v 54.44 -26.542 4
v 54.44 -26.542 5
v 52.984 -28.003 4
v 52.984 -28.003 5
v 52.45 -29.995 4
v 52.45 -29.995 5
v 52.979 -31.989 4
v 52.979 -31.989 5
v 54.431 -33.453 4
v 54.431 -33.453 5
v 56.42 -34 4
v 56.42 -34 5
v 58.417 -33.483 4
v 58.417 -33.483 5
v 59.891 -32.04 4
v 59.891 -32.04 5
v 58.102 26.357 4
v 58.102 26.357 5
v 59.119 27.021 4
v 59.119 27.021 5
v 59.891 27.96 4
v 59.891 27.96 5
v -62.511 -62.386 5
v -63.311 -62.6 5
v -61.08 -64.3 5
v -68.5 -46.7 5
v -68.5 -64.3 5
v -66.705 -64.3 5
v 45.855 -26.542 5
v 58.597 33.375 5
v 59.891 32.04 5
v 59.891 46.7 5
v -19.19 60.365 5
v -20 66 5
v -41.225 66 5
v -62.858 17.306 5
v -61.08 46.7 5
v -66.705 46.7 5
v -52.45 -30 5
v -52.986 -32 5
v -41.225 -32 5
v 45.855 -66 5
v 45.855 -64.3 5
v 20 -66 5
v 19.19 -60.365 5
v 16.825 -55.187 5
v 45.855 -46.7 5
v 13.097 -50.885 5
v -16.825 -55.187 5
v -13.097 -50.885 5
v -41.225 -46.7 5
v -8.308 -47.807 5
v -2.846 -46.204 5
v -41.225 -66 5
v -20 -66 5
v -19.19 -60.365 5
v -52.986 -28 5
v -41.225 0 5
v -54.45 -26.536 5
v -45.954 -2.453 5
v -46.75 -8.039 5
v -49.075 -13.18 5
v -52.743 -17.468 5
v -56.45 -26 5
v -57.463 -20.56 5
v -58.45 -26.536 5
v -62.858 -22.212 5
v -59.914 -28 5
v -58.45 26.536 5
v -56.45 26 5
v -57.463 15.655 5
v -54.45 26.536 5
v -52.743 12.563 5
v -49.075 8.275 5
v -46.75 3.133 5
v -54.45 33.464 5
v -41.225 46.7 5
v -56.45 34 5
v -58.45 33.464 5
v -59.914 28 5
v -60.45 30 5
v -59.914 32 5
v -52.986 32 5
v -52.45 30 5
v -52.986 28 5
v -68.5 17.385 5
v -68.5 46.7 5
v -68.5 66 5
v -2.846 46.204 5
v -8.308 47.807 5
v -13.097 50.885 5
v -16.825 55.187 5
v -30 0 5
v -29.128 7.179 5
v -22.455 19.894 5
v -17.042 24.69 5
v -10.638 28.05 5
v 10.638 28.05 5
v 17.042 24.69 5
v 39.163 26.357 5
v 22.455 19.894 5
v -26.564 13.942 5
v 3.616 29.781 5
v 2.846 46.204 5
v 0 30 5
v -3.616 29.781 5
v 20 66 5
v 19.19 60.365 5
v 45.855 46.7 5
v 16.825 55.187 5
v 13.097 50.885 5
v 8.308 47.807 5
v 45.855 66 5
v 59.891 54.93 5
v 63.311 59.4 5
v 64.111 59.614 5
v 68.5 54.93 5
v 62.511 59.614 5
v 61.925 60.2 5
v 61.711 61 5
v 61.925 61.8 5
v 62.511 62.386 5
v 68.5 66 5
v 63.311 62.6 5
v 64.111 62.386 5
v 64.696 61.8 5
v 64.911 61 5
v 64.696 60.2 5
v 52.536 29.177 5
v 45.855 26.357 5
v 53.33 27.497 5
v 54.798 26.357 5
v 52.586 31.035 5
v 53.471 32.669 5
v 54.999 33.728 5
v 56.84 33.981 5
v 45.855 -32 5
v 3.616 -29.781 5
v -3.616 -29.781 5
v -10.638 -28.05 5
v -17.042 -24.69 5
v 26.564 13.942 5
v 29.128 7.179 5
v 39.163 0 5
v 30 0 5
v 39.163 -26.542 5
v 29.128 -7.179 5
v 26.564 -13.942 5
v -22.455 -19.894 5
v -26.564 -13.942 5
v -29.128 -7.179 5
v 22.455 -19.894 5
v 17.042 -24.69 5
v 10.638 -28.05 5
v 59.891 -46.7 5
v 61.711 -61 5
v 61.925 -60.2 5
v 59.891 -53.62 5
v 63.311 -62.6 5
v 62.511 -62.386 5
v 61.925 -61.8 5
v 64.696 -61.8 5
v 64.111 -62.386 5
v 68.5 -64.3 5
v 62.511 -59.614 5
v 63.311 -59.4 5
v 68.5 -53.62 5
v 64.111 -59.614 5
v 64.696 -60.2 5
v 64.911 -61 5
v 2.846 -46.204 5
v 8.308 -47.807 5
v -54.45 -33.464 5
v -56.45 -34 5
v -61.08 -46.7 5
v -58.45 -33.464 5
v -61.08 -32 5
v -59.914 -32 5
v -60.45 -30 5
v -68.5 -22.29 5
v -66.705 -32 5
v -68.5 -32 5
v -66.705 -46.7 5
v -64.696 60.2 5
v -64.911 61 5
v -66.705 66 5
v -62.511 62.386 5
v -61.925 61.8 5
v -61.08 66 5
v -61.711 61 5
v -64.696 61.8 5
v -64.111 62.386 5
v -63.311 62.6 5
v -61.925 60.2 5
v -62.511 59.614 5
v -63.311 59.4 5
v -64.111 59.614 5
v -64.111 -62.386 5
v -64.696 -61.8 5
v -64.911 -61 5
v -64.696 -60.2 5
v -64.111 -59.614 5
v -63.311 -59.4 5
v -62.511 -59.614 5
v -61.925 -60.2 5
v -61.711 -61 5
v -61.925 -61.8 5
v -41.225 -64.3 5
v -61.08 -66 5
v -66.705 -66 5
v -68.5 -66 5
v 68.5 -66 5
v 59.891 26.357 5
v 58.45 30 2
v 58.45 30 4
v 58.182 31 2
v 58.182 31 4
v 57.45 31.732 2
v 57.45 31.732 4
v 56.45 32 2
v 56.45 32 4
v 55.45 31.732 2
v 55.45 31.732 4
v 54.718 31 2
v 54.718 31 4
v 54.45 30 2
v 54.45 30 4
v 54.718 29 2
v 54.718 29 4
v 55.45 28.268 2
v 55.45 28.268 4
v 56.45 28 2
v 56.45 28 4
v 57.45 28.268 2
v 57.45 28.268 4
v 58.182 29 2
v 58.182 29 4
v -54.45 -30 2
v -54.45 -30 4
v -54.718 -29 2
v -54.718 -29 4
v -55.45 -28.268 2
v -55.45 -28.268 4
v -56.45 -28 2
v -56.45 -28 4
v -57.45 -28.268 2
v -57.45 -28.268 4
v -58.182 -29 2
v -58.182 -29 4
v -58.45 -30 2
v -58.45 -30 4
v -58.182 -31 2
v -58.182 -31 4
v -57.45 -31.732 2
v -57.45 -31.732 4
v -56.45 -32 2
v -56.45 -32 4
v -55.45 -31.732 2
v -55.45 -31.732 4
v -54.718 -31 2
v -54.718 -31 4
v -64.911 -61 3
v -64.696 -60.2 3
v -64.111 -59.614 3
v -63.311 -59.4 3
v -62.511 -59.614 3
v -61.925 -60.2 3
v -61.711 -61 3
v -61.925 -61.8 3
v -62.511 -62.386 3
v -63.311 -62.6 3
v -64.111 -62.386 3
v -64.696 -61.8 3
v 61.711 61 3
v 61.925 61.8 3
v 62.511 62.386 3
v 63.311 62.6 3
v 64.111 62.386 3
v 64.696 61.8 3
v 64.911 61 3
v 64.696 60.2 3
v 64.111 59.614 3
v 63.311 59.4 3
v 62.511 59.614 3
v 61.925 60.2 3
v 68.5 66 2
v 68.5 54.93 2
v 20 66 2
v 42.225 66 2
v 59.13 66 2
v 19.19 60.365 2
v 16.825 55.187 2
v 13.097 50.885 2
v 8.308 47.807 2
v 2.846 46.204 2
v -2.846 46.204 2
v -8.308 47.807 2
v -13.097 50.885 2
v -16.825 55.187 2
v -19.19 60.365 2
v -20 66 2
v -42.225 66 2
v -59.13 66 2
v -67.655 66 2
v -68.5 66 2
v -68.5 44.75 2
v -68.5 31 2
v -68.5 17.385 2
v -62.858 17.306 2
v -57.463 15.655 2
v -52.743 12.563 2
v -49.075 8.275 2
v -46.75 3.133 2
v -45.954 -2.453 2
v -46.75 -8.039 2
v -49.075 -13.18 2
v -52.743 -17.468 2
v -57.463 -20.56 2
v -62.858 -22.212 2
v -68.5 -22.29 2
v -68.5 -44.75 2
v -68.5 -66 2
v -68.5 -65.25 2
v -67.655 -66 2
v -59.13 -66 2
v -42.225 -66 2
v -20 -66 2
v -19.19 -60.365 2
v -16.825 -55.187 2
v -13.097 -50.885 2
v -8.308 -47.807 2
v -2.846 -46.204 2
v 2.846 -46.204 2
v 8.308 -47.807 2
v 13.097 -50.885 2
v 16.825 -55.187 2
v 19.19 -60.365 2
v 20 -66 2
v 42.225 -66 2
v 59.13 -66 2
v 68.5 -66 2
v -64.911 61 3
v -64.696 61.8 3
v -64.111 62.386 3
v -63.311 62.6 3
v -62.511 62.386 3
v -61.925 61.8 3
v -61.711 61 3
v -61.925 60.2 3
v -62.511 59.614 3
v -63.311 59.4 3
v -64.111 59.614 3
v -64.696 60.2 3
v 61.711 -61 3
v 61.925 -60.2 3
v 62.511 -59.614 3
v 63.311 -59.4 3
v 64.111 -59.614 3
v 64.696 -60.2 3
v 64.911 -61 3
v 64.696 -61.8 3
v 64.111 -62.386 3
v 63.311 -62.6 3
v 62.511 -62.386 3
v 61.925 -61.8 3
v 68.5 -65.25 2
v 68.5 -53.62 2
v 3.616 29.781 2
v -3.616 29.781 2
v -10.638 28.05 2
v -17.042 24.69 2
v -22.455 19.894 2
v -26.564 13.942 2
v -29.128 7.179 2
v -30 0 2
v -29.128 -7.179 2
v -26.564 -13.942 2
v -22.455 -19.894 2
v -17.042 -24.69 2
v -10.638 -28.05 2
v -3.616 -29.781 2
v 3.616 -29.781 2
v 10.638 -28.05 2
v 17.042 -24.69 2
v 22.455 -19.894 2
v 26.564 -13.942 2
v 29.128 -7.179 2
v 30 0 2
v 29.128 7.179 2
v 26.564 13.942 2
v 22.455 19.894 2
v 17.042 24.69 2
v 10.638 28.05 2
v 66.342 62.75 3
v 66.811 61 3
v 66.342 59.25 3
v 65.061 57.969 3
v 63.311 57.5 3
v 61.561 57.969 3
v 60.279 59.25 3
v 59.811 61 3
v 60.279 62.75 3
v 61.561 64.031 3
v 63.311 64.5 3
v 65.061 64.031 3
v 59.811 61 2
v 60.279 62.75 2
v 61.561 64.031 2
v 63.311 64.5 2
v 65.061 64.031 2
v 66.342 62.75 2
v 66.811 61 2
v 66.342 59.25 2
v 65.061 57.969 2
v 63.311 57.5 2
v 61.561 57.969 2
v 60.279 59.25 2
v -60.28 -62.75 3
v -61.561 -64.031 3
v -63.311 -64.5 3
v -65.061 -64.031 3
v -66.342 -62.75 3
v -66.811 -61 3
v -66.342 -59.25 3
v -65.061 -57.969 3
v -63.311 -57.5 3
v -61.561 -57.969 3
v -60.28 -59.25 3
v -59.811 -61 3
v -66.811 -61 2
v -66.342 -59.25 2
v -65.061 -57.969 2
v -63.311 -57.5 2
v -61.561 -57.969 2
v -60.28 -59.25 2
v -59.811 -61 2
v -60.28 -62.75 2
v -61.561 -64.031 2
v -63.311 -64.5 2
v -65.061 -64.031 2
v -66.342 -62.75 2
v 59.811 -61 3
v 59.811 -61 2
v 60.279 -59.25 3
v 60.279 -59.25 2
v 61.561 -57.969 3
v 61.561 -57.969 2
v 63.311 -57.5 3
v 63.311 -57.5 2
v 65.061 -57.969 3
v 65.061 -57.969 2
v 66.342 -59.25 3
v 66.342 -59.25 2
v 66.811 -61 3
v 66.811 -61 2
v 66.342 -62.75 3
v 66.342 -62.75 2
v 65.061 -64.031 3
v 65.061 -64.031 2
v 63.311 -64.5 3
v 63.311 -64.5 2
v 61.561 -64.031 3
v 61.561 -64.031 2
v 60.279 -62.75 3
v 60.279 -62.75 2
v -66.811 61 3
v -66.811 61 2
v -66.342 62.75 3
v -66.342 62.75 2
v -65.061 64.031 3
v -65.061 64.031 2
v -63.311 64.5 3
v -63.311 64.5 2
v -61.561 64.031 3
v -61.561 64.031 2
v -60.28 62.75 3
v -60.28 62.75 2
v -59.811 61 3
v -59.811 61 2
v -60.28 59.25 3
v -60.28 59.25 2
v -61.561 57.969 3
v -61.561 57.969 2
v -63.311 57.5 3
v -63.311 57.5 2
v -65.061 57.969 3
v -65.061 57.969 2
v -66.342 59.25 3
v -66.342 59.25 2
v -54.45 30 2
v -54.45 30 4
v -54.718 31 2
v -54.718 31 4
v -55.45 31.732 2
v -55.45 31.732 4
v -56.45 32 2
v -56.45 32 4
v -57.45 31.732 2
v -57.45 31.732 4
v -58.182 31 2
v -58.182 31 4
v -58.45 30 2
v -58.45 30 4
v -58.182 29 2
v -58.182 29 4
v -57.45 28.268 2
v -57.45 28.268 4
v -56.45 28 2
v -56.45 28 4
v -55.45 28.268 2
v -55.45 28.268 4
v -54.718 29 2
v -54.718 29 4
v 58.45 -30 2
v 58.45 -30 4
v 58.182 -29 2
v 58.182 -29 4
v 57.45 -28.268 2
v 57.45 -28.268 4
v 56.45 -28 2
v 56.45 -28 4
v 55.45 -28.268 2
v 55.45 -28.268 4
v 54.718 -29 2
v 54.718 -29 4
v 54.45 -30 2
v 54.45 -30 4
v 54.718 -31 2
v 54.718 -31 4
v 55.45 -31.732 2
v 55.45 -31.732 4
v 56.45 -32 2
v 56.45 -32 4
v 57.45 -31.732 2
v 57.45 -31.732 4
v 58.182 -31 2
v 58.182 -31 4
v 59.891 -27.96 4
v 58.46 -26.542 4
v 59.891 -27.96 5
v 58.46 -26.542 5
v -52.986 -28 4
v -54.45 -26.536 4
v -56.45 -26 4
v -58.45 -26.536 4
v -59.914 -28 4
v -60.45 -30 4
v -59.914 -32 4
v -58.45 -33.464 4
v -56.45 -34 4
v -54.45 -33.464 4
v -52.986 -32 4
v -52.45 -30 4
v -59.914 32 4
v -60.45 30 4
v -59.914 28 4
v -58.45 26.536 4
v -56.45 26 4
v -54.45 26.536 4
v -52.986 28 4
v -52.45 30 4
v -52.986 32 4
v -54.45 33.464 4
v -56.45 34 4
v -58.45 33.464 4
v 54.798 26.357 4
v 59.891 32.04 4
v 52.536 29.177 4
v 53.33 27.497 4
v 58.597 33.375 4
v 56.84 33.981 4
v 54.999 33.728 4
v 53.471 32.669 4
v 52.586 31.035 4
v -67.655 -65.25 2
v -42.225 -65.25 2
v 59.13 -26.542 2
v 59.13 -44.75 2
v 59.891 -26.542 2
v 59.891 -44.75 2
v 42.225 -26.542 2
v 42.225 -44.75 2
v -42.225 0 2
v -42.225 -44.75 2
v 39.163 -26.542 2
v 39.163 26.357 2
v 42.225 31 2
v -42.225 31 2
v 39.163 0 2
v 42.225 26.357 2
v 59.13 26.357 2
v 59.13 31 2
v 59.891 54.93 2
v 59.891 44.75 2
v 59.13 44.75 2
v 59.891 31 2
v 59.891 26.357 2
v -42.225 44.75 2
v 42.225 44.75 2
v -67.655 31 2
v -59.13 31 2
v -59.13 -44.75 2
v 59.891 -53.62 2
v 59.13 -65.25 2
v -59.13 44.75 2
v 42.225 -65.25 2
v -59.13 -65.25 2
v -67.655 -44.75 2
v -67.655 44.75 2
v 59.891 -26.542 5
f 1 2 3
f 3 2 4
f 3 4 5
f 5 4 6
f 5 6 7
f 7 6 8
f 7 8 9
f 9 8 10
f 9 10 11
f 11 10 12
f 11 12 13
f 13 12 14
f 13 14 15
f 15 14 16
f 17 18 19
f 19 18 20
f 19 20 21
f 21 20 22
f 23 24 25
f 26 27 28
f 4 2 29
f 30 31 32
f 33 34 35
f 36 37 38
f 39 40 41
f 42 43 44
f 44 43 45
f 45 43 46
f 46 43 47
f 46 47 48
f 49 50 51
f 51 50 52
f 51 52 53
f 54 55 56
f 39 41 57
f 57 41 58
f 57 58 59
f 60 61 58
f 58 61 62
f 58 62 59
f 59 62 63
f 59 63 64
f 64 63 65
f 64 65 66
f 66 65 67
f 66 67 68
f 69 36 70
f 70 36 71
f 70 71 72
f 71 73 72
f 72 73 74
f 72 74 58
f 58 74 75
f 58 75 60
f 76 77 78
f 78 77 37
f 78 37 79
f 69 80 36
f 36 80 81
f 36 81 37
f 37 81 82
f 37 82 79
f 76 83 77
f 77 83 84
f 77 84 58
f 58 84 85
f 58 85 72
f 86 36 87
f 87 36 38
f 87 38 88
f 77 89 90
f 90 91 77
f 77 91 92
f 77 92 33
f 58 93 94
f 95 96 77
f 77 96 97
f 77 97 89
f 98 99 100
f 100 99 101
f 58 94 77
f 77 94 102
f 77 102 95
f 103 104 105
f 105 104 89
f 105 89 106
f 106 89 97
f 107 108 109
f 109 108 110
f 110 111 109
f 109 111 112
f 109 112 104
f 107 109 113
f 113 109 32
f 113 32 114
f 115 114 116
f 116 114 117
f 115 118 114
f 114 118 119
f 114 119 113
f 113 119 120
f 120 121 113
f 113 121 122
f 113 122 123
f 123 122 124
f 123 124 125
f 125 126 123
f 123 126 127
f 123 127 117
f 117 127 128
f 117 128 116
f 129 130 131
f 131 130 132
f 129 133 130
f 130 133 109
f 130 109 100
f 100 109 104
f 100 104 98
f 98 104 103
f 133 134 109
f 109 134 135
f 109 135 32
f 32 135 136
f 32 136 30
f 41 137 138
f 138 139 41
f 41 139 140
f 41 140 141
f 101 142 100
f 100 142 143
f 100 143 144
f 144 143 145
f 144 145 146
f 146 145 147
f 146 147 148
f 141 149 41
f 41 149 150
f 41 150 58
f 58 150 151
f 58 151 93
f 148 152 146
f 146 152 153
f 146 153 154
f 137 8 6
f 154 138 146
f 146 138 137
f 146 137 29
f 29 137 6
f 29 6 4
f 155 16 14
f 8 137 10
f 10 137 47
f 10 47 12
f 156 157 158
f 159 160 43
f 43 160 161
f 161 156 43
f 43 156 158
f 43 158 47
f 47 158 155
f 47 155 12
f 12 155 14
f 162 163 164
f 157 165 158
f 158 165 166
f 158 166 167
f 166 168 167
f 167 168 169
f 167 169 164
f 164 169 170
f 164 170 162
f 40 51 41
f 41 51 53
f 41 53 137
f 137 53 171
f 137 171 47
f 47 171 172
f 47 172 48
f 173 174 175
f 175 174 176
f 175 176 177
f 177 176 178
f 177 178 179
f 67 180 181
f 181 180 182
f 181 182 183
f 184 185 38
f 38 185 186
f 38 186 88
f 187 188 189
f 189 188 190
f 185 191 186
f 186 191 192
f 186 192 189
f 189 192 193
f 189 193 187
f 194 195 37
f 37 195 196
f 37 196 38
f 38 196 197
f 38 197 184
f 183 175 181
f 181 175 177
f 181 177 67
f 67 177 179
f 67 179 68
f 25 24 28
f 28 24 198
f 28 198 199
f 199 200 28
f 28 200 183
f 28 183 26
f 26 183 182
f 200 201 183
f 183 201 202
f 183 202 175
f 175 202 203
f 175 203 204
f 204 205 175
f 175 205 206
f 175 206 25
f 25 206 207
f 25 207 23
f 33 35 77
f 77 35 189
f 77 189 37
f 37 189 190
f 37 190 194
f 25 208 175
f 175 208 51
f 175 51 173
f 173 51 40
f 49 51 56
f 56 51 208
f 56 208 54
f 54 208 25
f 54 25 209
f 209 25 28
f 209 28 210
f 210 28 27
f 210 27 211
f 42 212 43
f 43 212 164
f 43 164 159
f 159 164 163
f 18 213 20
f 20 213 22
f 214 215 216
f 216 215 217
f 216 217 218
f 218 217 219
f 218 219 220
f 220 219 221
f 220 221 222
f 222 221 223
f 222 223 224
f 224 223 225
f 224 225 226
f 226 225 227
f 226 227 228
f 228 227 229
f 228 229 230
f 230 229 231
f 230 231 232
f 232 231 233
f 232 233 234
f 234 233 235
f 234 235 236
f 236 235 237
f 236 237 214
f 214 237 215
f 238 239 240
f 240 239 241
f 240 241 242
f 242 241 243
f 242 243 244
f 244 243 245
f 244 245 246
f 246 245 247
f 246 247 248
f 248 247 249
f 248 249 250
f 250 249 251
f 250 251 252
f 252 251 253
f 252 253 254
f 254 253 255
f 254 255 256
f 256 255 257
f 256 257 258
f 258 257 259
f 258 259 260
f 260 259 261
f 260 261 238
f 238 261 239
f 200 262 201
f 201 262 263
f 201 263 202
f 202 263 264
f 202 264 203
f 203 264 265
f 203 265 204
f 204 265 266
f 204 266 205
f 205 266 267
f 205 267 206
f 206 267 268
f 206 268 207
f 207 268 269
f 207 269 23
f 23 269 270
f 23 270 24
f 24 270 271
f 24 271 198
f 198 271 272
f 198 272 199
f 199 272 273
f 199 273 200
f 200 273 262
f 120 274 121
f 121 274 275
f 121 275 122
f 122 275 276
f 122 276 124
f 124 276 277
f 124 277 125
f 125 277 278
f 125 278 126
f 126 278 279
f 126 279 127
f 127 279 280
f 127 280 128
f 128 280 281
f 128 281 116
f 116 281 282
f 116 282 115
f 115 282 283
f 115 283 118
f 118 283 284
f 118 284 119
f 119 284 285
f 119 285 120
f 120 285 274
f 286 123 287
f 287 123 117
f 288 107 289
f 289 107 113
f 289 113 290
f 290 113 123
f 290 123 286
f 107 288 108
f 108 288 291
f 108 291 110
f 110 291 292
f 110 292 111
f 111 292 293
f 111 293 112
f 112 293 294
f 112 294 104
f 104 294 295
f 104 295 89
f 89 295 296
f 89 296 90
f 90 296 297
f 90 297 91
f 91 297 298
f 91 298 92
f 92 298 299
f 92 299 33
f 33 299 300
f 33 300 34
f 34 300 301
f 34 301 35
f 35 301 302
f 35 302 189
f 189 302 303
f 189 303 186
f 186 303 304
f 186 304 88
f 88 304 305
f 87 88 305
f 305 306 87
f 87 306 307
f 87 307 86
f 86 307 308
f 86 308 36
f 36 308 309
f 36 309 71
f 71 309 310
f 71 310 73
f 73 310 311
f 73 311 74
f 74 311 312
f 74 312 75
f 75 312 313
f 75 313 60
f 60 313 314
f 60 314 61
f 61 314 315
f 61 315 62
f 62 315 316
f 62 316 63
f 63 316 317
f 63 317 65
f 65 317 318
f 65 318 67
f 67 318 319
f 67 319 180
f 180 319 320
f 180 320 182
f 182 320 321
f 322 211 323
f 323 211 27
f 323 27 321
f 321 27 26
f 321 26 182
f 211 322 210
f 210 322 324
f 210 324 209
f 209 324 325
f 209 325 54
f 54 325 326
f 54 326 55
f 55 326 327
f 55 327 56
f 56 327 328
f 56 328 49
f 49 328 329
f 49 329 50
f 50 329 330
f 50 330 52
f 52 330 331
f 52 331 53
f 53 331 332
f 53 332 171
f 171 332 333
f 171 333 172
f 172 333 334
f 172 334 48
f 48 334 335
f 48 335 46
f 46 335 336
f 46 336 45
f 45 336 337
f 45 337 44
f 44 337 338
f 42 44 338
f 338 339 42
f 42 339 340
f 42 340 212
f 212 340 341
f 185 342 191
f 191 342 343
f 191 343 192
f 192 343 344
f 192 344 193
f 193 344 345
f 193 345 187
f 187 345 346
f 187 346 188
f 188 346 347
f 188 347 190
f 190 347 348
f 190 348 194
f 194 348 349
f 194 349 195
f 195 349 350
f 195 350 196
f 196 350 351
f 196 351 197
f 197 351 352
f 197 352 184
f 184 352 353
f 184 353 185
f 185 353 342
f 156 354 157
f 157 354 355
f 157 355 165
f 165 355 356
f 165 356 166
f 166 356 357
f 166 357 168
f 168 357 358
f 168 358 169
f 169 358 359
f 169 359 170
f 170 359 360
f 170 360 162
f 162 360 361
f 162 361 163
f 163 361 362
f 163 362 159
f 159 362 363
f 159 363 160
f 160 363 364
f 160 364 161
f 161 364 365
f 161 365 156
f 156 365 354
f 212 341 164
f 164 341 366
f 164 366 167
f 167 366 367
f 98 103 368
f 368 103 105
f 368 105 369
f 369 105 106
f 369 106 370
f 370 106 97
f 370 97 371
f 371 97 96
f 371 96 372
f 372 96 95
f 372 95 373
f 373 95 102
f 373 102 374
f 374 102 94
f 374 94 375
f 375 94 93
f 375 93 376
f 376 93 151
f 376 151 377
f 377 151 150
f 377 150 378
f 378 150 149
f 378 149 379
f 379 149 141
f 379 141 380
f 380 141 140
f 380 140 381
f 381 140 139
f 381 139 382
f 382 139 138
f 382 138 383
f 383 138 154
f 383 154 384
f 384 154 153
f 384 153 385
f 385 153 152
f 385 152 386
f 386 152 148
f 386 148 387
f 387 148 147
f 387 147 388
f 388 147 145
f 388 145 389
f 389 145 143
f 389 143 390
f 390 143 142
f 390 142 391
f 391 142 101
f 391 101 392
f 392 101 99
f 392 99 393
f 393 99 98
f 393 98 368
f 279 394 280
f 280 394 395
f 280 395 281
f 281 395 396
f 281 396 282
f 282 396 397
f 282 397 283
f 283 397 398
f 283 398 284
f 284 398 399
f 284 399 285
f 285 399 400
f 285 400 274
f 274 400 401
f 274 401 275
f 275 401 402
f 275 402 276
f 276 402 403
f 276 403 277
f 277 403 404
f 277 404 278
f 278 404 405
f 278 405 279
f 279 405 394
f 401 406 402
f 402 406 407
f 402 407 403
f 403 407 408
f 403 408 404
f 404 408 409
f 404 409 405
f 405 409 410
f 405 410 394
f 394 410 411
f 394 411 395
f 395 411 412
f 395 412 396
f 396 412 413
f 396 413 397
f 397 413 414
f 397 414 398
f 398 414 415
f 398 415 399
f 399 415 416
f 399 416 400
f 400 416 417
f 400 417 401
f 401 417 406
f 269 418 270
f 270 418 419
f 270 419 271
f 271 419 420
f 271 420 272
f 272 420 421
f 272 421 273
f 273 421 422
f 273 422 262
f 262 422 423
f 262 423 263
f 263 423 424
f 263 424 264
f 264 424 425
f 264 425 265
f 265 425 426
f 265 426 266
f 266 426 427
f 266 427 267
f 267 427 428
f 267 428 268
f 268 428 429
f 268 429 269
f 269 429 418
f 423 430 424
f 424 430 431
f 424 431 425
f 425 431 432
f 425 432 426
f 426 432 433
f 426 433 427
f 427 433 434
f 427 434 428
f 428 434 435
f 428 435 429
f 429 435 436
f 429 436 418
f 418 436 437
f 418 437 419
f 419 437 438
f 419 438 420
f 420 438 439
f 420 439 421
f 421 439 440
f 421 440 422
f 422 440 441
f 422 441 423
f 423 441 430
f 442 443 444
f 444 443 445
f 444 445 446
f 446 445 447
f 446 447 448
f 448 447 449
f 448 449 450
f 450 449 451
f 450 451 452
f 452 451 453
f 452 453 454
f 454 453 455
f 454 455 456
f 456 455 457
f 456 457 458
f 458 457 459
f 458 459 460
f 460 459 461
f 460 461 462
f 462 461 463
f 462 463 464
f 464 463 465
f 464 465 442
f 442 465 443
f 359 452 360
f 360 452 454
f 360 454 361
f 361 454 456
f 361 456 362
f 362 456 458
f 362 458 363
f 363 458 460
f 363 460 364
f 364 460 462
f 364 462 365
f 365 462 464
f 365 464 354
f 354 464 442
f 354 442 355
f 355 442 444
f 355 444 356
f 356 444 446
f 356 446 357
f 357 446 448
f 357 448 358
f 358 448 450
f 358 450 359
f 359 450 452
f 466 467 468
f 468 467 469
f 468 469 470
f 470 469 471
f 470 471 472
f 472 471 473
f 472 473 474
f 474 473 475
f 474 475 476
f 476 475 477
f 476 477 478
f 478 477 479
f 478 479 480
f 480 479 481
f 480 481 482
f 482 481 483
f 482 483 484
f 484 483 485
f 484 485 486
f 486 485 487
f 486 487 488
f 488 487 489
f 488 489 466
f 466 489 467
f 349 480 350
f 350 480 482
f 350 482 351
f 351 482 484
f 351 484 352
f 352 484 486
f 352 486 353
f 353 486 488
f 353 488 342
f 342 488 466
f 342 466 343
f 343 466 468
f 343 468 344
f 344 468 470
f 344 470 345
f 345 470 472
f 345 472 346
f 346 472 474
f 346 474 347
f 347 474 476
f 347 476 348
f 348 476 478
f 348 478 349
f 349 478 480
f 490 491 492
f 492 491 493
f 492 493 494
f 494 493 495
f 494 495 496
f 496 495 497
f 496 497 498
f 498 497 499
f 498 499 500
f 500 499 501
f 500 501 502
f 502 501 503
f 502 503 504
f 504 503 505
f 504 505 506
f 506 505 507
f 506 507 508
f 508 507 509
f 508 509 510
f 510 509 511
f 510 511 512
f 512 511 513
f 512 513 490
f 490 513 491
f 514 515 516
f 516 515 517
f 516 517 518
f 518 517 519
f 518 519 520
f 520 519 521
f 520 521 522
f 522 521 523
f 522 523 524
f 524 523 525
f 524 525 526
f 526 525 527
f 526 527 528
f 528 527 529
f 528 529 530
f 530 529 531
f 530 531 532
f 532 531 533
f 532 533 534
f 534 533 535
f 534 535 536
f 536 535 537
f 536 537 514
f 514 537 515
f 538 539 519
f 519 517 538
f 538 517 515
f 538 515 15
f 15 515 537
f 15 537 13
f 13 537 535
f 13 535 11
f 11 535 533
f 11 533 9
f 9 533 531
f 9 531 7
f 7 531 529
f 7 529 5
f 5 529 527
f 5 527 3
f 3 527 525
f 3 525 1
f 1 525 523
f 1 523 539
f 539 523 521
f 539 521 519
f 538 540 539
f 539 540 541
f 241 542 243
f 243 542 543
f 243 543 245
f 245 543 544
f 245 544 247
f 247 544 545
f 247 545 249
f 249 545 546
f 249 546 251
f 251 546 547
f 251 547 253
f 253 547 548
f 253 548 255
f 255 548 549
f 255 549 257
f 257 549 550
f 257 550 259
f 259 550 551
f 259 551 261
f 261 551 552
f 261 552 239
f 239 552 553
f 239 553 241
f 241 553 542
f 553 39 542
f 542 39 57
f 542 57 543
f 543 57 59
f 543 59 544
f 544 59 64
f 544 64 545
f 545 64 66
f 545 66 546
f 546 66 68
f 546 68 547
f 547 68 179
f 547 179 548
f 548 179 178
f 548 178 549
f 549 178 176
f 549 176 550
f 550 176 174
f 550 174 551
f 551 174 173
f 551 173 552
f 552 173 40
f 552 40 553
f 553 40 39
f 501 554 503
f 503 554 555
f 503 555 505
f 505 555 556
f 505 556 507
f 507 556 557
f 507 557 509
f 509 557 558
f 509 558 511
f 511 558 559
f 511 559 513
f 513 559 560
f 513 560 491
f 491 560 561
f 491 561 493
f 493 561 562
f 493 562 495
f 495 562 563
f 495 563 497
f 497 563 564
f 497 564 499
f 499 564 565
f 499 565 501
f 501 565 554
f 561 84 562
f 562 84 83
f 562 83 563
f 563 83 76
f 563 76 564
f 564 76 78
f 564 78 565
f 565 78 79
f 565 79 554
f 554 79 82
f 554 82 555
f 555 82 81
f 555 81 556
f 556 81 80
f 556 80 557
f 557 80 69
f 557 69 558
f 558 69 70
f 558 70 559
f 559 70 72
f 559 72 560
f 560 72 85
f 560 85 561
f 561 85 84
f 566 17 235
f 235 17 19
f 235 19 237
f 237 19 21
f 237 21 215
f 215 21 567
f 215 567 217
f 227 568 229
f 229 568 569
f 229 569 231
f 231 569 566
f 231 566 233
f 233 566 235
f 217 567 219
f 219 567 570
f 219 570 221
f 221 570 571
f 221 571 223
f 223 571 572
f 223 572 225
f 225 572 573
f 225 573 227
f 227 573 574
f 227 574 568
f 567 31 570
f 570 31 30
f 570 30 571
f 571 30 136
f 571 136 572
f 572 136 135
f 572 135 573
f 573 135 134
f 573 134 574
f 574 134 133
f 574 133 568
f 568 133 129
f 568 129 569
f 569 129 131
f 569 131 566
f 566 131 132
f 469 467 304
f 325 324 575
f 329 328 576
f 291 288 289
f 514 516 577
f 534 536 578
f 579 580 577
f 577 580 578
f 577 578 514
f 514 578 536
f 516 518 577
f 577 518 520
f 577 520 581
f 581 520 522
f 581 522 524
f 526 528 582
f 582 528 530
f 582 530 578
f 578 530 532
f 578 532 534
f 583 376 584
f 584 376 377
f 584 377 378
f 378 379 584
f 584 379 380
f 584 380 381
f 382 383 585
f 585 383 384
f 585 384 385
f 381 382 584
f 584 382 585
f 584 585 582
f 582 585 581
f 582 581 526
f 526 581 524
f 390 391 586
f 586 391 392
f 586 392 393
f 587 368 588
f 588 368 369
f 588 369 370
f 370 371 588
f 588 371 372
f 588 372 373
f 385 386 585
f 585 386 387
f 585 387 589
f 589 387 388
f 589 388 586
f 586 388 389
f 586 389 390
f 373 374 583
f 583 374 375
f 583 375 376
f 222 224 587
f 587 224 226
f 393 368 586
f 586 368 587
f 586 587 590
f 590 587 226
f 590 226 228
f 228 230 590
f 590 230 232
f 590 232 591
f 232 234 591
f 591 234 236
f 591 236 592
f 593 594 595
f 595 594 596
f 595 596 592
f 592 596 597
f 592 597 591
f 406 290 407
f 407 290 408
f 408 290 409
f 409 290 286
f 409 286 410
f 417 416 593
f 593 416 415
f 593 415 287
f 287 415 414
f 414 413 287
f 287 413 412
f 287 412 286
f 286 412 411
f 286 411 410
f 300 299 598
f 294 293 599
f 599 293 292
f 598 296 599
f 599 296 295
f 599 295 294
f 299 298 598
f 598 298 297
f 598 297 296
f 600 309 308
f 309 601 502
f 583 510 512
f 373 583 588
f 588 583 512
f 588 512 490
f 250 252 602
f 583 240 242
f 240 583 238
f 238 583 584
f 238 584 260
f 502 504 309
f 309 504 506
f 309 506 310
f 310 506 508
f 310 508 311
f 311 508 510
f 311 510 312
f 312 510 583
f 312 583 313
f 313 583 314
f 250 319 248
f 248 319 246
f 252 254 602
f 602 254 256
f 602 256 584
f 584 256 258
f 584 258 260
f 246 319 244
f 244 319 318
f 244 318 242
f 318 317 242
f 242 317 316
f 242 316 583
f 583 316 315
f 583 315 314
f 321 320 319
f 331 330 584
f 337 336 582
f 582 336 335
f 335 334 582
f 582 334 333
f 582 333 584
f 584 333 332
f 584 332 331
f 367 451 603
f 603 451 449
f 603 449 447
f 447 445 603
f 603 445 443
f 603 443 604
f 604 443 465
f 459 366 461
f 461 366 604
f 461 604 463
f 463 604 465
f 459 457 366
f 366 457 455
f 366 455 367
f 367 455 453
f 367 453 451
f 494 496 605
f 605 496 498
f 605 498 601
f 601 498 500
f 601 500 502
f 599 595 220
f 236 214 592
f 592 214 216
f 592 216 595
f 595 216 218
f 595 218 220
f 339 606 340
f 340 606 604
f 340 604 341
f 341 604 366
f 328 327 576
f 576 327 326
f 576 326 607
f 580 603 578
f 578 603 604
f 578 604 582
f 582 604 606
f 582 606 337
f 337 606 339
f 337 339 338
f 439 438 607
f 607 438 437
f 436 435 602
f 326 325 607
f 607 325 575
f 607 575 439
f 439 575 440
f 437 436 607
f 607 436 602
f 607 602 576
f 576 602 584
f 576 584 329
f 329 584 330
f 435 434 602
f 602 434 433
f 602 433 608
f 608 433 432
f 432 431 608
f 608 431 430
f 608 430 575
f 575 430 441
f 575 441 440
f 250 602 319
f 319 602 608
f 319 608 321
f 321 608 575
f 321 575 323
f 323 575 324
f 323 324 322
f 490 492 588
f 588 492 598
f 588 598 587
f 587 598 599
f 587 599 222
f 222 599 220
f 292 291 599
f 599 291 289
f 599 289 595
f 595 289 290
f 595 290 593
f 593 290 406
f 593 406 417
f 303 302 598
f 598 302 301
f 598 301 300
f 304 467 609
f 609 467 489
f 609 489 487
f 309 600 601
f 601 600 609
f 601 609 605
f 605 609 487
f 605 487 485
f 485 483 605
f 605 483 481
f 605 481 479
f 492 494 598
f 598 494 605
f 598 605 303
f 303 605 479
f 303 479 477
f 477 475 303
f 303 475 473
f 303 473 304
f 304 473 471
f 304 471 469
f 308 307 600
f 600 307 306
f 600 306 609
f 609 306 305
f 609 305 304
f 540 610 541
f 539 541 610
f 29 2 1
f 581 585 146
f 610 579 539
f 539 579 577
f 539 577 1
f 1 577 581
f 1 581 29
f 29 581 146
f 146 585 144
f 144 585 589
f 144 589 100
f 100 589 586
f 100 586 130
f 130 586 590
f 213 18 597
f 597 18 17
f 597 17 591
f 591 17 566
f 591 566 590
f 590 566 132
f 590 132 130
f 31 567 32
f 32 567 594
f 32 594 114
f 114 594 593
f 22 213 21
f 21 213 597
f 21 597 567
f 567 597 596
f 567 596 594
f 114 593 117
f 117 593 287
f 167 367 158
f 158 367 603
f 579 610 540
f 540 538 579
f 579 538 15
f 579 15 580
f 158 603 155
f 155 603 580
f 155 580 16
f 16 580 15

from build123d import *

# Parameters (mm, degrees)
SKETCH_1_R           = 1.6
EXTRUDE_1_DEPTH      = 6
SKETCH_2_R           = 30
CUT_EXTRUDE_1_DEPTH  = 13
SKETCH_3_R           = 3.5
CUT_EXTRUDE_2_DEPTH  = 3
SKETCH_5_R           = 2
CUT_EXTRUDE_3_DEPTH  = 23.5
SKETCH_6_R           = 4
CUT_EXTRUDE_4_DEPTH  = 2
CUT_EXTRUDE_6_REACH  = 134
SKETCH_8_W           = 137
SKETCH_8_H           = 2
CUT_EXTRUDE_7_REACH  = 139
SKETCH_9_W           = 1
SKETCH_9_H           = 132
SKETCH_10_W          = 29.336996967
SKETCH_10_H          = 52.898776648
CUT_EXTRUDE_11_DEPTH = 10
SKETCH_11_W          = 8.60940703
SKETCH_11_H          = 108.550160487
CUT_EXTRUDE_12_DEPTH = 10


with BuildPart() as part:
    # 草图1 → 凸台-拉伸1 (new body)
    with BuildSketch(Plane.XY):
        with BuildLine():
            Line((68.5, 66), (20, 66))
            ThreePointArc((20, 66), (0, 46), (-20, 66))
            Line((-20, 66), (-68.5, 66))
            Line((-68.5, 66), (-68.5, 17.384653731))
            ThreePointArc((-68.5, 17.384653731), (-52.74289675, 12.562504398), (-45.954411074, -2.452684221))
            ThreePointArc((-45.954411074, -2.452684221), (-52.74289675, -17.46787284), (-68.5, -22.290022173))
            Line((-68.5, -22.290022173), (-68.5, -66))
            Line((-68.5, -66), (-20, -66))
            ThreePointArc((-20, -66), (0, -46), (20, -66))
            Line((20, -66), (68.5, -66))
            Line((68.5, -66), (68.5, -17.384653731))
            ThreePointArc((68.5, -17.384653731), (45.954411074, 2.452684221), (68.5, 22.290022173))
            Line((68.5, 22.290022173), (68.5, 66))
        make_face()
        with Locations((-63.310606061, -61)):
            Circle(SKETCH_1_R, mode=Mode.SUBTRACT)
        with Locations((63.310606061, -61)):
            Circle(SKETCH_1_R, mode=Mode.SUBTRACT)
        with Locations((-63.310606061, 61)):
            Circle(SKETCH_1_R, mode=Mode.SUBTRACT)
        with Locations((63.310606061, 61)):
            Circle(SKETCH_1_R, mode=Mode.SUBTRACT)
    extrude(amount=EXTRUDE_1_DEPTH)

    # 草图2 → 切除-拉伸1 (cut)
    with BuildSketch(Plane.XY.offset(6)):
        Circle(SKETCH_2_R)
    extrude(amount=-CUT_EXTRUDE_1_DEPTH, mode=Mode.SUBTRACT)

    # 草图3 → 切除-拉伸2 (cut)
    with BuildSketch(Plane(origin=(0, 0, 0), x_dir=(-1, 0, 0), z_dir=(0, 0, -1))):
        with Locations((-63.310606061, 61)):
            Circle(SKETCH_3_R)
        with Locations((63.310606061, 61)):
            Circle(SKETCH_3_R)
        with Locations((-63.310606061, -61)):
            Circle(SKETCH_3_R)
        with Locations((63.310606061, -61)):
            Circle(SKETCH_3_R)
    extrude(amount=-CUT_EXTRUDE_2_DEPTH, mode=Mode.SUBTRACT)

    # 草图5 → 切除-拉伸3 (cut)
    with BuildSketch(Plane.XY.offset(6)):
        with Locations((56.45, 30)):
            Circle(SKETCH_5_R)
        with Locations((-56.45, 30)):
            Circle(SKETCH_5_R)
        with Locations((-56.45, -30)):
            Circle(SKETCH_5_R)
        with Locations((56.45, -30)):
            Circle(SKETCH_5_R)
    extrude(amount=-CUT_EXTRUDE_3_DEPTH, mode=Mode.SUBTRACT)

    # 草图6 → 切除-拉伸4 (cut)
    with BuildSketch(Plane.XY.offset(6)):
        with Locations((56.45, 30)):
            Circle(SKETCH_6_R)
        with Locations((56.45, -30)):
            Circle(SKETCH_6_R)
        with Locations((-56.45, -30)):
            Circle(SKETCH_6_R)
        with Locations((-56.45, 30)):
            Circle(SKETCH_6_R)
    extrude(amount=-CUT_EXTRUDE_4_DEPTH, mode=Mode.SUBTRACT)

    # 草图8 → 切除-拉伸6 (cut, up to next)
    with BuildSketch(Plane(origin=(0, 66, 0), x_dir=(1, 0, 0), z_dir=(0, 1, 0)), mode=Mode.PRIVATE) as cut_extrude_6_sk1:
        with Locations((0, -1)):
            Rectangle(SKETCH_8_W, SKETCH_8_H)
    cut_extrude_6_tool1 = extrude(cut_extrude_6_sk1.sketch, amount=-CUT_EXTRUDE_6_REACH, mode=Mode.PRIVATE) & part.part
    add(cut_extrude_6_tool1.solids().sort_by_distance((0, 66, 1))[0], mode=Mode.SUBTRACT)

    # 草图9 → 切除-拉伸7 (cut, up to next)
    with BuildSketch(Plane(origin=(68.5, 0, 0), x_dir=(0, 0, -1), z_dir=(1, 0, 0)), mode=Mode.PRIVATE) as cut_extrude_7_sk1:
        with Locations((-5.5, 0)):
            Rectangle(SKETCH_9_W, SKETCH_9_H)
    cut_extrude_7_tool1 = extrude(cut_extrude_7_sk1.sketch, amount=-CUT_EXTRUDE_7_REACH, mode=Mode.PRIVATE) & part.part
    add(cut_extrude_7_tool1.solids().sort_by_distance((68.5, 0, 5.5))[0], mode=Mode.SUBTRACT)

    # 草图10 → 切除-拉伸11 (cut)
    with BuildSketch(Plane.XY.offset(5)):
        with Locations((53.831501516, -0.092402659)):
            Rectangle(SKETCH_10_W, SKETCH_10_H)
    extrude(amount=-CUT_EXTRUDE_11_DEPTH, mode=Mode.SUBTRACT)

    # 草图11 → 切除-拉伸12 (cut)
    with BuildSketch(Plane.XY.offset(5)):
        with Locations((64.195296485, 0.655364597)):
            Rectangle(SKETCH_11_W, SKETCH_11_H)
    extrude(amount=-CUT_EXTRUDE_12_DEPTH, mode=Mode.SUBTRACT)


solid = part.part
